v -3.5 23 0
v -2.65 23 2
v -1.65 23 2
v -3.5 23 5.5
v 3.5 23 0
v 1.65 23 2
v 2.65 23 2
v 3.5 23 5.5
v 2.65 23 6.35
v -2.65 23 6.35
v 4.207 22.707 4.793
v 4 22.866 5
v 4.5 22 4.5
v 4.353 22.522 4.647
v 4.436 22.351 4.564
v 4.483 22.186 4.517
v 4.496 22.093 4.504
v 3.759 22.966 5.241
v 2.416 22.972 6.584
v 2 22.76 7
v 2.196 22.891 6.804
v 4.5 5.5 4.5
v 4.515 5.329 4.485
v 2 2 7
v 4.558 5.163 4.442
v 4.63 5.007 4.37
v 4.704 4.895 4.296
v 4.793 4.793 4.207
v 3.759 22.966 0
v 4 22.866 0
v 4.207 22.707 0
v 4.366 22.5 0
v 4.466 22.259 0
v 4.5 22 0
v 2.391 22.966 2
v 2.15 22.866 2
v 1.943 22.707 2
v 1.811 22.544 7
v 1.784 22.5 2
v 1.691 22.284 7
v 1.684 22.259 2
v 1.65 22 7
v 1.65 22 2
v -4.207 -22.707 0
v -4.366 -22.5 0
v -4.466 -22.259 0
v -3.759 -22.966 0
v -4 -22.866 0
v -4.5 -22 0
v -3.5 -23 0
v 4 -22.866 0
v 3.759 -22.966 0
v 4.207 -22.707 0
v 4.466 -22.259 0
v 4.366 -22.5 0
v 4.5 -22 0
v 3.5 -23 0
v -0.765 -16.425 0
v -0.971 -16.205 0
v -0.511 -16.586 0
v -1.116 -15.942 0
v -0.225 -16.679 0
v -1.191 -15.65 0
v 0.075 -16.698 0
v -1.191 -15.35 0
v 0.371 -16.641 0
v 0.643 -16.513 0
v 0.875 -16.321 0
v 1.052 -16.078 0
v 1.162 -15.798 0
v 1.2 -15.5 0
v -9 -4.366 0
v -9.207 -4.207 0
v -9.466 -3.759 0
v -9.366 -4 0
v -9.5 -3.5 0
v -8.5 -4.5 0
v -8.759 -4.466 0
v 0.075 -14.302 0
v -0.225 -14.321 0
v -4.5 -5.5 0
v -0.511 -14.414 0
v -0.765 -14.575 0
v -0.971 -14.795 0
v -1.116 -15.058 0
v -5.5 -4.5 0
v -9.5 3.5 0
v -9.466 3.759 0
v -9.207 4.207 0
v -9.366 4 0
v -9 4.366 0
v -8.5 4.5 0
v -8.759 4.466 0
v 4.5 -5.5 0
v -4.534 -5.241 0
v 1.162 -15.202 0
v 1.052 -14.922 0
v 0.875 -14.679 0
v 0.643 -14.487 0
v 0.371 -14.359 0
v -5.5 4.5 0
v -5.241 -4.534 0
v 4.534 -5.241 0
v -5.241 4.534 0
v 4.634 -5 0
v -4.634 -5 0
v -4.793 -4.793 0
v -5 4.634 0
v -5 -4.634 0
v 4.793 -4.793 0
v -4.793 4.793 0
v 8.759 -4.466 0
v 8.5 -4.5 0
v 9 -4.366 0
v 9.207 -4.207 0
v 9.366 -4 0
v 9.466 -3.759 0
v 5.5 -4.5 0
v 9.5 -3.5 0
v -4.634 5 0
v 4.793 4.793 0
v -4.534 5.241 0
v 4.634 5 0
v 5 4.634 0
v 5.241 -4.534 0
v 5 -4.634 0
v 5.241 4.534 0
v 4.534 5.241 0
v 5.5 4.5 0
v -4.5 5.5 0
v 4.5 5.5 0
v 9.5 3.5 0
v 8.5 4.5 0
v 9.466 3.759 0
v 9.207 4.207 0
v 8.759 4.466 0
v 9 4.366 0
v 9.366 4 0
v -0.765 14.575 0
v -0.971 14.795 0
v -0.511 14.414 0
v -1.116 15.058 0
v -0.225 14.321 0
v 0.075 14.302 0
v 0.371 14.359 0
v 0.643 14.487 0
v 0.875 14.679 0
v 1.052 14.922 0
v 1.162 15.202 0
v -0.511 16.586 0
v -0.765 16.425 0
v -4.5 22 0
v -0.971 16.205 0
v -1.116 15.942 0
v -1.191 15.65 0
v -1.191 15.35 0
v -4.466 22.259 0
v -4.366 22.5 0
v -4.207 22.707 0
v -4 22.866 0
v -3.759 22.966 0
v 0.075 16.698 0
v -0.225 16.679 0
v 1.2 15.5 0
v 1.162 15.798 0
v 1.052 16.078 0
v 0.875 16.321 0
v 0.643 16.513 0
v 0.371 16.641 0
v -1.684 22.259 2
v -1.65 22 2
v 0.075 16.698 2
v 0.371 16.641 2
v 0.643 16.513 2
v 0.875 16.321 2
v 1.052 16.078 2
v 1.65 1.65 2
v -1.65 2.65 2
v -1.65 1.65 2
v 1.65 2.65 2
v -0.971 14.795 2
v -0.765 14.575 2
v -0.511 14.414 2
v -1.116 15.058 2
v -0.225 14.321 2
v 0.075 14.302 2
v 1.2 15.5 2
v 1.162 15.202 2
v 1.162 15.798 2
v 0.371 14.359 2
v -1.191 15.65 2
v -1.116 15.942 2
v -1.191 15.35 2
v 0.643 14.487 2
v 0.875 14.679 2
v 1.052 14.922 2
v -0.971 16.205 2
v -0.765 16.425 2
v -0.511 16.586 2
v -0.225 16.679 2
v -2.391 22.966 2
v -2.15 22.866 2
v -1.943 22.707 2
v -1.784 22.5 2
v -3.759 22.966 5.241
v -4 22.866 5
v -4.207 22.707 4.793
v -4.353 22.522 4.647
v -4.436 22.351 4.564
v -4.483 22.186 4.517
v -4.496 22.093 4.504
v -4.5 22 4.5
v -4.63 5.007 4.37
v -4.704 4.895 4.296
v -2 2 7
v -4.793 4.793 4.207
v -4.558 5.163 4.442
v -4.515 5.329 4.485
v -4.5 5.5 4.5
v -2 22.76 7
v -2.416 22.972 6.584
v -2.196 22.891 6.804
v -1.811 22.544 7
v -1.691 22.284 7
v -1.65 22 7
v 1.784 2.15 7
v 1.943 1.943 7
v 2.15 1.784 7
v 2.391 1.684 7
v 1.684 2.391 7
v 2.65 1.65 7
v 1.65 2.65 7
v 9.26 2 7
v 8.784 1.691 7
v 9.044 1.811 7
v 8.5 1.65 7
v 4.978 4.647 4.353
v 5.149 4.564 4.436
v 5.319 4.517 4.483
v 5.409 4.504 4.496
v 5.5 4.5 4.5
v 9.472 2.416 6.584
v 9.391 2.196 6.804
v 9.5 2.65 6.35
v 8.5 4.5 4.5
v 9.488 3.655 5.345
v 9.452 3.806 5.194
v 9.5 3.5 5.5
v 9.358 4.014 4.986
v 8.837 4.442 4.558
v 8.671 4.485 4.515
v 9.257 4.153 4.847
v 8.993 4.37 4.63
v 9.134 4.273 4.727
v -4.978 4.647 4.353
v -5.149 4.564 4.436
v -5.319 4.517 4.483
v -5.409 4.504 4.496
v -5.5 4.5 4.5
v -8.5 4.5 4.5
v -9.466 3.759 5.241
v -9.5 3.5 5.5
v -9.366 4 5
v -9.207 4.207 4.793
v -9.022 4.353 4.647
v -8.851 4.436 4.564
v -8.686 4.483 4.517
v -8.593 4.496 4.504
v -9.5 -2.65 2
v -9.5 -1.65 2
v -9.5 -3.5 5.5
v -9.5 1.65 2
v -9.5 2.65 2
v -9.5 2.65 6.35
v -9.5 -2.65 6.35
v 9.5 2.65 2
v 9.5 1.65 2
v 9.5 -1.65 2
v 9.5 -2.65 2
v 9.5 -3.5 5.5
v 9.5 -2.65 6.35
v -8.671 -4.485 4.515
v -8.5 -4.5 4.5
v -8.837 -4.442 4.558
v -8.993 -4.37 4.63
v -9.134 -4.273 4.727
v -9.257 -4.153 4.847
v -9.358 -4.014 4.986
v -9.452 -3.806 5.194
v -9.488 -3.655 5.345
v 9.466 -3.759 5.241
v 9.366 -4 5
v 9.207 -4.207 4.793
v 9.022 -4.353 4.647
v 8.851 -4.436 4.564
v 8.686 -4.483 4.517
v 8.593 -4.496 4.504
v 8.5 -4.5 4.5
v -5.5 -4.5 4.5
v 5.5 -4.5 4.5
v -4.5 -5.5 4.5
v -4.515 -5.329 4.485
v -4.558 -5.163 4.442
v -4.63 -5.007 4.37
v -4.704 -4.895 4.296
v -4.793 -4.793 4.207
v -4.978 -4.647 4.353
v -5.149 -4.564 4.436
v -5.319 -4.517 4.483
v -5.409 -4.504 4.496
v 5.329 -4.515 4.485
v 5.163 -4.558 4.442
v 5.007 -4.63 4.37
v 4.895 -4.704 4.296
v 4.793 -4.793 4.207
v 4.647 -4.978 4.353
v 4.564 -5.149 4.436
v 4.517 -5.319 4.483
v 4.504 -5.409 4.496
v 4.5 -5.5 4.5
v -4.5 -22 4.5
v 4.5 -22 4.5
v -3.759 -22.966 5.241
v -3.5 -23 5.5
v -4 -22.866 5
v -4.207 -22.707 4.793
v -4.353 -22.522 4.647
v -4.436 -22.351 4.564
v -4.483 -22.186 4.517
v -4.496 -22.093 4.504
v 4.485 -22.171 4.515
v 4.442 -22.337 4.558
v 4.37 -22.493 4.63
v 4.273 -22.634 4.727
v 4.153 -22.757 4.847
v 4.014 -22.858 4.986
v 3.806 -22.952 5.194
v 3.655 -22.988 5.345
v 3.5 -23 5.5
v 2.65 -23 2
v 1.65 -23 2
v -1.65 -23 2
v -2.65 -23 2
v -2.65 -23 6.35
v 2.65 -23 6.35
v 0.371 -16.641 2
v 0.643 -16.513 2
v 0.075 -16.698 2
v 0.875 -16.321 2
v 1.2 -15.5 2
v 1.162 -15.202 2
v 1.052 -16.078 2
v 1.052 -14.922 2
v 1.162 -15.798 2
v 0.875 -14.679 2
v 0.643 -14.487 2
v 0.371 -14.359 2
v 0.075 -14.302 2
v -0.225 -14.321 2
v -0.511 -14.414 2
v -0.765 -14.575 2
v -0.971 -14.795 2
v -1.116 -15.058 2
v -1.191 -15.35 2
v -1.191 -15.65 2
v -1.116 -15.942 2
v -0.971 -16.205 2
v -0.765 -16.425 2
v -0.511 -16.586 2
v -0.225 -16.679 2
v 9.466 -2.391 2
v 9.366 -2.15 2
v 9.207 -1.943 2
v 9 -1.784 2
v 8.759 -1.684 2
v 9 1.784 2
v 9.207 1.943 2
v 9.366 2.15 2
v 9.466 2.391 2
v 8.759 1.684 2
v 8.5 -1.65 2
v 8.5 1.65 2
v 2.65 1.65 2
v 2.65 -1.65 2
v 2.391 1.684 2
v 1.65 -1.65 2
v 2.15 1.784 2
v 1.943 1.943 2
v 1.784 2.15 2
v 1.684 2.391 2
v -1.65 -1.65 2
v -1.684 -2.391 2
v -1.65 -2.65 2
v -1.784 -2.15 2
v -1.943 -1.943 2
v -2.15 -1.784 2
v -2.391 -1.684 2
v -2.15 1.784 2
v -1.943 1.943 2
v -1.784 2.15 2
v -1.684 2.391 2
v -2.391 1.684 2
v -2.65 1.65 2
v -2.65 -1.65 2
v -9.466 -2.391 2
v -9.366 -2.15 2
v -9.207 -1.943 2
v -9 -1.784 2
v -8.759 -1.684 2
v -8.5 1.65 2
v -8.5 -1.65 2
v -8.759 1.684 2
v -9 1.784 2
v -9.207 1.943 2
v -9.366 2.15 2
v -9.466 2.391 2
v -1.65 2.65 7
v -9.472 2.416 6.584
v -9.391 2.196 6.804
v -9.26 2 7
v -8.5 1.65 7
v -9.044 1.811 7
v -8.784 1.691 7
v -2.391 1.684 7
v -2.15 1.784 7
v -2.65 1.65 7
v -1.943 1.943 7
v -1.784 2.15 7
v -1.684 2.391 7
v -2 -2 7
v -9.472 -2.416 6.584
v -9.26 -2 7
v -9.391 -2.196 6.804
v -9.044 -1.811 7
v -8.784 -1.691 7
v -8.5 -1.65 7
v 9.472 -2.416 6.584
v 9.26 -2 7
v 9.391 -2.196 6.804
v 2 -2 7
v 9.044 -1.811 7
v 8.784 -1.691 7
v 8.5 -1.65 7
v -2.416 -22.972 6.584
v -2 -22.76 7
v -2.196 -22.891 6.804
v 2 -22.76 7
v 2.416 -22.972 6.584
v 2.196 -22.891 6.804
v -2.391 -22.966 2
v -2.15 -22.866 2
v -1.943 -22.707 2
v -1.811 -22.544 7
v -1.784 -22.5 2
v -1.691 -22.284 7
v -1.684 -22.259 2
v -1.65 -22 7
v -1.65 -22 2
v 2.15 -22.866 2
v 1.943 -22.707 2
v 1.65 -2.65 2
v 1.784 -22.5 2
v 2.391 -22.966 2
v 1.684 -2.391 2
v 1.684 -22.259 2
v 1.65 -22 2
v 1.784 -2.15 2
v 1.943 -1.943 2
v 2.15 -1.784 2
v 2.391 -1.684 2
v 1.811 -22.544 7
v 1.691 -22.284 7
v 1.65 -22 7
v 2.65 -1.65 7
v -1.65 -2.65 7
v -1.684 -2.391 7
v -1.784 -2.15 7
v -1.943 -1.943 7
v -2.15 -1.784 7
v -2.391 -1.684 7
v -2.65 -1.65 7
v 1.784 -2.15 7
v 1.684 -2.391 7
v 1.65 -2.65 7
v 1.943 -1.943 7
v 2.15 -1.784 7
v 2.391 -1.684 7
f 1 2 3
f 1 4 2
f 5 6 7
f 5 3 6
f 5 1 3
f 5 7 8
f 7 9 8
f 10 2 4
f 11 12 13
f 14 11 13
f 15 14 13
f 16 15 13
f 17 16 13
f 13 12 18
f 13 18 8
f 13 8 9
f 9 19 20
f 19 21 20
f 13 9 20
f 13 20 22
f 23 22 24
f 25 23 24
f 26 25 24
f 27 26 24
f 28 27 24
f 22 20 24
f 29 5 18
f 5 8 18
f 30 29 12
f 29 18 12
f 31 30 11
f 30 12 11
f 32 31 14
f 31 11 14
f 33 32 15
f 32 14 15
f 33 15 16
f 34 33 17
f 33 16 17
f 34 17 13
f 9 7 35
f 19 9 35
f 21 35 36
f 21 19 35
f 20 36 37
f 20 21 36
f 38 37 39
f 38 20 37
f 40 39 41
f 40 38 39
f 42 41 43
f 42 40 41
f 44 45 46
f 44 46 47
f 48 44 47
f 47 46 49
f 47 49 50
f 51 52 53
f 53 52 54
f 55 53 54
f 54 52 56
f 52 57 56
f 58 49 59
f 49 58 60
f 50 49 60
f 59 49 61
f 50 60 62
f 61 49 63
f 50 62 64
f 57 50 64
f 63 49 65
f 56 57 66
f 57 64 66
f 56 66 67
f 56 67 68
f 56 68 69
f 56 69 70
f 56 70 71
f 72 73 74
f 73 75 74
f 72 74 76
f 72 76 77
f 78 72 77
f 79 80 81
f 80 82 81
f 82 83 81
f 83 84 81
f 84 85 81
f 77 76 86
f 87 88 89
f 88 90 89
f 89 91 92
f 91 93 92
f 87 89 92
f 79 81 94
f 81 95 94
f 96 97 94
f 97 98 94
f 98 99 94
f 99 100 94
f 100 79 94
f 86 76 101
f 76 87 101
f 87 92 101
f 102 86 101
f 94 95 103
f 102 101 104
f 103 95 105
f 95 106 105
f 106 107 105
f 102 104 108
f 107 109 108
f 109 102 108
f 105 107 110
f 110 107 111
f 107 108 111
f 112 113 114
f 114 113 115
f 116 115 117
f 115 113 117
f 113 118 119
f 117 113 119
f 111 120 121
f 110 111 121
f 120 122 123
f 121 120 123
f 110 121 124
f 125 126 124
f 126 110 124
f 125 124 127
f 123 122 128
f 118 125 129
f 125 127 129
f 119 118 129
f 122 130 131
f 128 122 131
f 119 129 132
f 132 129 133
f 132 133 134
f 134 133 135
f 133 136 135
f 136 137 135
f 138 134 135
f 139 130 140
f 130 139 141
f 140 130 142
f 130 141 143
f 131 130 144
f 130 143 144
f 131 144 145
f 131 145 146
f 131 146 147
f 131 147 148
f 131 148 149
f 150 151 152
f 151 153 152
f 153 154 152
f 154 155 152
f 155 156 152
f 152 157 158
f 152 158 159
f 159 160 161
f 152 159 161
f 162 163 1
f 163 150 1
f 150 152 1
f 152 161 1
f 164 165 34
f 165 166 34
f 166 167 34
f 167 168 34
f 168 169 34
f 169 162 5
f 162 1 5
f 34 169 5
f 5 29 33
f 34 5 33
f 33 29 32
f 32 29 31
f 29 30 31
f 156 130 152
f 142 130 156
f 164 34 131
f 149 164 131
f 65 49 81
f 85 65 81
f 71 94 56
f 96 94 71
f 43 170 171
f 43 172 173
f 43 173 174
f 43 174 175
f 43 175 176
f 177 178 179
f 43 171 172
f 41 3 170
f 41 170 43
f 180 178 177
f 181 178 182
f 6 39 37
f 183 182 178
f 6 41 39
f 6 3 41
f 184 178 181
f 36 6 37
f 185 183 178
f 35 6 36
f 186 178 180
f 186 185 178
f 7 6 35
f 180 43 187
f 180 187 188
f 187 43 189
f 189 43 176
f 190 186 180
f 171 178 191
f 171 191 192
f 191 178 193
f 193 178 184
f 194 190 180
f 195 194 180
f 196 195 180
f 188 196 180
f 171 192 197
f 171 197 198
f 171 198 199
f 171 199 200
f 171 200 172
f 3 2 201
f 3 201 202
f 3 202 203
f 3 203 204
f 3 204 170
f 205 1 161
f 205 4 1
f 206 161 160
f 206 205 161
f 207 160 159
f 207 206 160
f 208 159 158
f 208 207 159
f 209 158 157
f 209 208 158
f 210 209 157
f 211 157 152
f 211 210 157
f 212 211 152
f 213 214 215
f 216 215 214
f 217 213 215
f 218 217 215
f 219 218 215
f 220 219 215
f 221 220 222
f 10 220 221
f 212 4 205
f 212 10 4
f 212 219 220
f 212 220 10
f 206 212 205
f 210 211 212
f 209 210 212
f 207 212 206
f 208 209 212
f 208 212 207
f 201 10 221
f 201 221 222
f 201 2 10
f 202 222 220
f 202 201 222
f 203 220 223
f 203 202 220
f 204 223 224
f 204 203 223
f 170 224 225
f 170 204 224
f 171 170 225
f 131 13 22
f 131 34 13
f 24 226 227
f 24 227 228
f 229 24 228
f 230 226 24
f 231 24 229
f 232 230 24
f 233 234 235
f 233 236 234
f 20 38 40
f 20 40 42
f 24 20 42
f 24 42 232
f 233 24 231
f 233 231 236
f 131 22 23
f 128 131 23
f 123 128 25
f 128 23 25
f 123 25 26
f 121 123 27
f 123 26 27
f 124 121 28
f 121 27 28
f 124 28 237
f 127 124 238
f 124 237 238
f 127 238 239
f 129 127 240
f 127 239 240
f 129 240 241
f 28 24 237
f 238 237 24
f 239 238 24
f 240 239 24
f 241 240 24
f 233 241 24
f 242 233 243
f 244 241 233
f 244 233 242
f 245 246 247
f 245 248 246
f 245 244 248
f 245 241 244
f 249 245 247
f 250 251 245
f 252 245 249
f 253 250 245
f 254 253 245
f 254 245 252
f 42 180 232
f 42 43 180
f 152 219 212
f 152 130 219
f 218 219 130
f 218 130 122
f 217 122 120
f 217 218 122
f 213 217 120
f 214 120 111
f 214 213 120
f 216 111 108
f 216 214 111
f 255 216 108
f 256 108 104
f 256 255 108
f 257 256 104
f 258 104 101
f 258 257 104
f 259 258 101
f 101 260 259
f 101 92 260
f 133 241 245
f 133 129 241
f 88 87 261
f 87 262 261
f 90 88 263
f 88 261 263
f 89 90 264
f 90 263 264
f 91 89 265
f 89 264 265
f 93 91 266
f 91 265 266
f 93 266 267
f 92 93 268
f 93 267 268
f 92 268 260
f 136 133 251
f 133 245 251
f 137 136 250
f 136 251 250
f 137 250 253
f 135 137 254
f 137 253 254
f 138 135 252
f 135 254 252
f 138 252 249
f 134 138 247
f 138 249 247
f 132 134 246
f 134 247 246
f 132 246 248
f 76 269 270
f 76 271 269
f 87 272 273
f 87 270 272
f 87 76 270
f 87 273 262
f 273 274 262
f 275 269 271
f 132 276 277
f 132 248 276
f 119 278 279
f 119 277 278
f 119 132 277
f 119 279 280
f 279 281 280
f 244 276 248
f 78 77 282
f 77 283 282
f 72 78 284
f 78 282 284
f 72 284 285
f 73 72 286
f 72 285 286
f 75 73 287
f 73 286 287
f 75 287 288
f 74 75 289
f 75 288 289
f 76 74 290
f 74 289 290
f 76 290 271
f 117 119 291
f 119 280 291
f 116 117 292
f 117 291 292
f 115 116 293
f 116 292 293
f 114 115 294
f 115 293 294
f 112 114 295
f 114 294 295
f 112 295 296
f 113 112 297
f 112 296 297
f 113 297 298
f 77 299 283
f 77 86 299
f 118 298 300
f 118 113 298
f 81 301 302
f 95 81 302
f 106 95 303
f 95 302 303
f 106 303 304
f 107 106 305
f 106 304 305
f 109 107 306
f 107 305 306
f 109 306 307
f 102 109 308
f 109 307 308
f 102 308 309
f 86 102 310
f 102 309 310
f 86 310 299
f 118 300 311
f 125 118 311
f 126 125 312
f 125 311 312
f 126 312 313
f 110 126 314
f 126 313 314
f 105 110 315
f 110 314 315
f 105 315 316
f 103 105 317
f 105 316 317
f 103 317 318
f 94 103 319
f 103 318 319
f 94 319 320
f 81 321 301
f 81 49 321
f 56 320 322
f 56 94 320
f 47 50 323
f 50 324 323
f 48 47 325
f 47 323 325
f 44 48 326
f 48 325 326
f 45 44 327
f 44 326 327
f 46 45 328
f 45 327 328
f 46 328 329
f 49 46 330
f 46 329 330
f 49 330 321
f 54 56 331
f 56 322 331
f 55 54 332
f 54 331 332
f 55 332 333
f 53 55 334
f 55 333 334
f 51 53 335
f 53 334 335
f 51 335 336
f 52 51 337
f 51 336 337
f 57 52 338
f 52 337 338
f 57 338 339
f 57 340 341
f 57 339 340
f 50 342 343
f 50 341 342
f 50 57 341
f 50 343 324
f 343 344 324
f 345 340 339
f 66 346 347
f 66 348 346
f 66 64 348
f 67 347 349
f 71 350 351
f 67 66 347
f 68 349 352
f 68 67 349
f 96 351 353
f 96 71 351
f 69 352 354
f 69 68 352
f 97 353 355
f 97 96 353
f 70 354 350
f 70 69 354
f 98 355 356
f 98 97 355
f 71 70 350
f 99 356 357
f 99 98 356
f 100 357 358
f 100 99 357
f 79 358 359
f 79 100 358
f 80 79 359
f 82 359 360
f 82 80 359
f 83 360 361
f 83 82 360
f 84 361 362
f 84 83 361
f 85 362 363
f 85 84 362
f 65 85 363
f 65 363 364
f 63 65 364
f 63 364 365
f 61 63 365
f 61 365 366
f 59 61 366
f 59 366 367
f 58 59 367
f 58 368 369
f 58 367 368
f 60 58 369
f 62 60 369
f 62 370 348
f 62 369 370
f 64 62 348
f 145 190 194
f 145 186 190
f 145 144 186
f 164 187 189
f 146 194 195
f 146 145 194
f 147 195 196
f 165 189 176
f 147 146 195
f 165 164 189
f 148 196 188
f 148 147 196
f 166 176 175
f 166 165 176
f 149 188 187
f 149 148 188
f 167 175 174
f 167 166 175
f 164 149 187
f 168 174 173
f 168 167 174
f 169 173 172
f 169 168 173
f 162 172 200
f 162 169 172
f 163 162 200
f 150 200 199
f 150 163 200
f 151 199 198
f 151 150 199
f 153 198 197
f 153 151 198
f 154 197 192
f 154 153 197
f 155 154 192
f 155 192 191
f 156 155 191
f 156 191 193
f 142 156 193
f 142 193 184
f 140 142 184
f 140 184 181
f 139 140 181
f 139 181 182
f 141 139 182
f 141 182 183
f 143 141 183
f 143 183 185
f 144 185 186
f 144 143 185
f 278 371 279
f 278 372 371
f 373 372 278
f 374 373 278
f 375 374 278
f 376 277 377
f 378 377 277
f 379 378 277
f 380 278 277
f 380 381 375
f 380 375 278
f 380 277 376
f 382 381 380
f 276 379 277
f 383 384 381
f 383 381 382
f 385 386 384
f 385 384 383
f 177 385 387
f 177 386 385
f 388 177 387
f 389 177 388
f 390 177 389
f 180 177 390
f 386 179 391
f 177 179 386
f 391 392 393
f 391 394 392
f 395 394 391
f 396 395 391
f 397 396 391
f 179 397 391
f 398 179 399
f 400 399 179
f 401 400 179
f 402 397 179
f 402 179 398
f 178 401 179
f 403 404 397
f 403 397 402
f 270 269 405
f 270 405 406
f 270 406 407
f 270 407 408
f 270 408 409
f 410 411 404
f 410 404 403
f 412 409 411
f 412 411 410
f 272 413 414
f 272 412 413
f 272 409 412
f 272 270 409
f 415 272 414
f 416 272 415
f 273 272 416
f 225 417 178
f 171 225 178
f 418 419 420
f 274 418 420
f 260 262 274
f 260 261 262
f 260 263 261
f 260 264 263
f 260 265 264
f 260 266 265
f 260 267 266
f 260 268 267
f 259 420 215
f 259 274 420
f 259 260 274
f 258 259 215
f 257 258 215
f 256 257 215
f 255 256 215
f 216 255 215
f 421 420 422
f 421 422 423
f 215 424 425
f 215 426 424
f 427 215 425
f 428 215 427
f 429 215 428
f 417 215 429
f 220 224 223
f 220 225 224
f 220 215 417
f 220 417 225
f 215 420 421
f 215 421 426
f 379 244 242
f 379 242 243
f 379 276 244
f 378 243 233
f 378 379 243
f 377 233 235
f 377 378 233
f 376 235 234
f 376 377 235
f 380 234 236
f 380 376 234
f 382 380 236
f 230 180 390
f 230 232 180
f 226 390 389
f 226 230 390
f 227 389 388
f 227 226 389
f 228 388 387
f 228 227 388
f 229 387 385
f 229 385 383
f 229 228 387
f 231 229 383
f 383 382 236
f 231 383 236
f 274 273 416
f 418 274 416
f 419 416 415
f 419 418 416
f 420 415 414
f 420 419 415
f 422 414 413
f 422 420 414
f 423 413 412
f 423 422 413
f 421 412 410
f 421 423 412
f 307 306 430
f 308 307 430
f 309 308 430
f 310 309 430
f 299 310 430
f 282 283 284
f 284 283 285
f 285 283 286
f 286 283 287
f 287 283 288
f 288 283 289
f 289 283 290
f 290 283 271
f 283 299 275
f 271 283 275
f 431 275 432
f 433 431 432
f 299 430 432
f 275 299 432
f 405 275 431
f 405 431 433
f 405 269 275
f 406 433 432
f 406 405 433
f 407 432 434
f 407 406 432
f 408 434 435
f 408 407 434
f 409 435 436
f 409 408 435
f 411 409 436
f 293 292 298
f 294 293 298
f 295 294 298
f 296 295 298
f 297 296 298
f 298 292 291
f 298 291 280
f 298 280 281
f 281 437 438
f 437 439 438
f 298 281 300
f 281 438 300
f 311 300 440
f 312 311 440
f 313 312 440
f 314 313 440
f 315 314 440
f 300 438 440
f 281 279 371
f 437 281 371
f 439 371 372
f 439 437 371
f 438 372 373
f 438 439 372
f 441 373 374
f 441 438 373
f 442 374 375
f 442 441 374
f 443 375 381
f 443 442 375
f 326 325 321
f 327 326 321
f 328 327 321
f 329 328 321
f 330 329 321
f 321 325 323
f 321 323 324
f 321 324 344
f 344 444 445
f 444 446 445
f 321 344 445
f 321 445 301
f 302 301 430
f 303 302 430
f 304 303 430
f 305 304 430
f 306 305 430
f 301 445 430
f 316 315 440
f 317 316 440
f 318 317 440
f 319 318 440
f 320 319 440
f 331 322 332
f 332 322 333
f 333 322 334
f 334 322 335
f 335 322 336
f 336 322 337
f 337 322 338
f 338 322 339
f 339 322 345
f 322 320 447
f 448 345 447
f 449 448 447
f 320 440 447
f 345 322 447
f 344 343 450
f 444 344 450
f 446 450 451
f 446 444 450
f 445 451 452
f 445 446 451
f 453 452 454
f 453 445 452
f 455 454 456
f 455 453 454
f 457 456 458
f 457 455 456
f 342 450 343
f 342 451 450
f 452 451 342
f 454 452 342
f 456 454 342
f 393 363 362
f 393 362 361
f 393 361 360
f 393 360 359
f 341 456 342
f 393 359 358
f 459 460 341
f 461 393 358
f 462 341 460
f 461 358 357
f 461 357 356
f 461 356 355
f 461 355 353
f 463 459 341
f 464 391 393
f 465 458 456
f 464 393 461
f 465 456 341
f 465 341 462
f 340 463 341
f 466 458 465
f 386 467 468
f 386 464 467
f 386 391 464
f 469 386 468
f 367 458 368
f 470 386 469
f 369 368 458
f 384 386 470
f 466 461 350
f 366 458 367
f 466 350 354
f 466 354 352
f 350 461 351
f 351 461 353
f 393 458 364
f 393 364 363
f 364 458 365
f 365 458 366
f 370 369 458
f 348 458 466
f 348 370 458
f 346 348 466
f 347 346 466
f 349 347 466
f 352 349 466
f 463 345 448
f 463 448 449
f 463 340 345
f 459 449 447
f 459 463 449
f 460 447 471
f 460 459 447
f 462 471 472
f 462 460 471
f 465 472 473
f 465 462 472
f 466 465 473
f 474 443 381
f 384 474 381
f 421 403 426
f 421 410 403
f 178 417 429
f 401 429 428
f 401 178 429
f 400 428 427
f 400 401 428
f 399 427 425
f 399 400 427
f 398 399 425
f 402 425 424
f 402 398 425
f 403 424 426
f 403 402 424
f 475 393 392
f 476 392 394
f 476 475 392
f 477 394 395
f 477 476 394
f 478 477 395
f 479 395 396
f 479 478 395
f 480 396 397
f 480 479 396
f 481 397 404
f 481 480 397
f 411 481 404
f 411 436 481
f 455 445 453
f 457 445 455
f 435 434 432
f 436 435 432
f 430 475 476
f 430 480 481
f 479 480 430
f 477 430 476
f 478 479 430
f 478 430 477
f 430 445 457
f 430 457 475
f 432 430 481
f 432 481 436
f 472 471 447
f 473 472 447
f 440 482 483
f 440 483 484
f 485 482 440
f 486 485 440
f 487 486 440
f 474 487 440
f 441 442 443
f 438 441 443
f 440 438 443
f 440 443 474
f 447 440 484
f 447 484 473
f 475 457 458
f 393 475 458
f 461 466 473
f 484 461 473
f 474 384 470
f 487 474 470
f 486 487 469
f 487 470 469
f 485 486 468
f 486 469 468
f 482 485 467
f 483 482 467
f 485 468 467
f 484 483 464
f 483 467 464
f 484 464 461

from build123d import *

# Parameters (mm, degrees)
SKETCH_R        = 1.2
PAD_DEPTH       = 7
SKETCH001_W     = 3.3
SKETCH001_H     = 5
POCKET_DEPTH    = 50
SKETCH002_W     = 3.3
SKETCH002_H     = 5
POCKET001_DEPTH = 30
CHAMFER_SIZE    = 2.5
FILLET_R        = 1
FILLET001_R     = 1


with BuildPart() as part:
    # Sketch → Pad (new body)
    with BuildSketch(Plane.XY):
        Polygon((-4.5, 23), (4.5, 23), (4.5, 4.5), (9.5, 4.5), (9.5, -4.5), (4.5, -4.5), (4.5, -23), (-4.5, -23), (-4.5, -4.5), (-9.5, -4.5), (-9.5, 4.5), (-4.5, 4.5), align=None)
        with Locations((0, 15.5)):
            Circle(SKETCH_R, mode=Mode.SUBTRACT)
        with Locations((0, -15.5)):
            Circle(SKETCH_R, mode=Mode.SUBTRACT)
    extrude(amount=PAD_DEPTH)

    # Sketch001 → Pocket (cut)
    with BuildSketch(Plane(origin=(0, 23, 0), x_dir=(-1, 0, 0), z_dir=(0, 1, 0))):
        with Locations((0, 4.5)):
            Rectangle(SKETCH001_W, SKETCH001_H)
    extrude(amount=-POCKET_DEPTH, mode=Mode.SUBTRACT)

    # Sketch002 → Pocket001 (cut)
    with BuildSketch(Plane(origin=(-9.5, 0, 0), x_dir=(0, -1, 0), z_dir=(-1, 0, 0))):
        with Locations((0, 4.5)):
            Rectangle(SKETCH002_W, SKETCH002_H)
    extrude(amount=-POCKET001_DEPTH, mode=Mode.SUBTRACT)

    # Chamfer
    chamfer_edges = [part.edges().sort_by_distance(p)[0] for p in [
        (-4.5, 13.75, 7),
        (-7, 4.5, 7),
        (4.5, 13.75, 7),
        (7, 4.5, 7),
        (7, -4.5, 7),
        (4.5, -13.75, 7),
        (-4.5, -13.75, 7),
        (-7, -4.5, 7),
    ]]
    chamfer(chamfer_edges, length=CHAMFER_SIZE)

    # Fillet
    fillet_edges = [part.edges().sort_by_distance(p)[0] for p in [
        (-9.5, 1.65, 4.5),
        (-9.5, -1.65, 4.5),
        (-1.65, 23, 4.5),
        (1.65, 23, 4.5),
        (9.5, 1.65, 4.5),
        (9.5, -1.65, 4.5),
        (-1.65, -23, 4.5),
        (1.65, -23, 4.5),
        (1.65, 1.65, 4.5),
        (-1.65, 1.65, 4.5),
        (1.65, -1.65, 4.5),
        (-1.65, -1.65, 4.5),
    ]]
    fillet(fillet_edges, radius=FILLET_R)

    # Fillet001
    fillet001_edges = [part.edges().sort_by_distance(p)[0] for p in [
        (-9.5, -4.5, 2.25),
        (-9.5, 4.5, 2.25),
        (-4.5, 4.5, 2.25),
        (-4.5, 23, 2.25),
        (4.5, 23, 2.25),
        (4.5, 4.5, 2.25),
        (9.5, 4.5, 2.25),
        (9.5, -4.5, 2.25),
        (4.5, -4.5, 2.25),
        (4.5, -23, 2.25),
        (-4.5, -23, 2.25),
        (-4.5, -4.5, 2.25),
    ]]
    fillet(fillet001_edges, radius=FILLET001_R)


solid = part.part
